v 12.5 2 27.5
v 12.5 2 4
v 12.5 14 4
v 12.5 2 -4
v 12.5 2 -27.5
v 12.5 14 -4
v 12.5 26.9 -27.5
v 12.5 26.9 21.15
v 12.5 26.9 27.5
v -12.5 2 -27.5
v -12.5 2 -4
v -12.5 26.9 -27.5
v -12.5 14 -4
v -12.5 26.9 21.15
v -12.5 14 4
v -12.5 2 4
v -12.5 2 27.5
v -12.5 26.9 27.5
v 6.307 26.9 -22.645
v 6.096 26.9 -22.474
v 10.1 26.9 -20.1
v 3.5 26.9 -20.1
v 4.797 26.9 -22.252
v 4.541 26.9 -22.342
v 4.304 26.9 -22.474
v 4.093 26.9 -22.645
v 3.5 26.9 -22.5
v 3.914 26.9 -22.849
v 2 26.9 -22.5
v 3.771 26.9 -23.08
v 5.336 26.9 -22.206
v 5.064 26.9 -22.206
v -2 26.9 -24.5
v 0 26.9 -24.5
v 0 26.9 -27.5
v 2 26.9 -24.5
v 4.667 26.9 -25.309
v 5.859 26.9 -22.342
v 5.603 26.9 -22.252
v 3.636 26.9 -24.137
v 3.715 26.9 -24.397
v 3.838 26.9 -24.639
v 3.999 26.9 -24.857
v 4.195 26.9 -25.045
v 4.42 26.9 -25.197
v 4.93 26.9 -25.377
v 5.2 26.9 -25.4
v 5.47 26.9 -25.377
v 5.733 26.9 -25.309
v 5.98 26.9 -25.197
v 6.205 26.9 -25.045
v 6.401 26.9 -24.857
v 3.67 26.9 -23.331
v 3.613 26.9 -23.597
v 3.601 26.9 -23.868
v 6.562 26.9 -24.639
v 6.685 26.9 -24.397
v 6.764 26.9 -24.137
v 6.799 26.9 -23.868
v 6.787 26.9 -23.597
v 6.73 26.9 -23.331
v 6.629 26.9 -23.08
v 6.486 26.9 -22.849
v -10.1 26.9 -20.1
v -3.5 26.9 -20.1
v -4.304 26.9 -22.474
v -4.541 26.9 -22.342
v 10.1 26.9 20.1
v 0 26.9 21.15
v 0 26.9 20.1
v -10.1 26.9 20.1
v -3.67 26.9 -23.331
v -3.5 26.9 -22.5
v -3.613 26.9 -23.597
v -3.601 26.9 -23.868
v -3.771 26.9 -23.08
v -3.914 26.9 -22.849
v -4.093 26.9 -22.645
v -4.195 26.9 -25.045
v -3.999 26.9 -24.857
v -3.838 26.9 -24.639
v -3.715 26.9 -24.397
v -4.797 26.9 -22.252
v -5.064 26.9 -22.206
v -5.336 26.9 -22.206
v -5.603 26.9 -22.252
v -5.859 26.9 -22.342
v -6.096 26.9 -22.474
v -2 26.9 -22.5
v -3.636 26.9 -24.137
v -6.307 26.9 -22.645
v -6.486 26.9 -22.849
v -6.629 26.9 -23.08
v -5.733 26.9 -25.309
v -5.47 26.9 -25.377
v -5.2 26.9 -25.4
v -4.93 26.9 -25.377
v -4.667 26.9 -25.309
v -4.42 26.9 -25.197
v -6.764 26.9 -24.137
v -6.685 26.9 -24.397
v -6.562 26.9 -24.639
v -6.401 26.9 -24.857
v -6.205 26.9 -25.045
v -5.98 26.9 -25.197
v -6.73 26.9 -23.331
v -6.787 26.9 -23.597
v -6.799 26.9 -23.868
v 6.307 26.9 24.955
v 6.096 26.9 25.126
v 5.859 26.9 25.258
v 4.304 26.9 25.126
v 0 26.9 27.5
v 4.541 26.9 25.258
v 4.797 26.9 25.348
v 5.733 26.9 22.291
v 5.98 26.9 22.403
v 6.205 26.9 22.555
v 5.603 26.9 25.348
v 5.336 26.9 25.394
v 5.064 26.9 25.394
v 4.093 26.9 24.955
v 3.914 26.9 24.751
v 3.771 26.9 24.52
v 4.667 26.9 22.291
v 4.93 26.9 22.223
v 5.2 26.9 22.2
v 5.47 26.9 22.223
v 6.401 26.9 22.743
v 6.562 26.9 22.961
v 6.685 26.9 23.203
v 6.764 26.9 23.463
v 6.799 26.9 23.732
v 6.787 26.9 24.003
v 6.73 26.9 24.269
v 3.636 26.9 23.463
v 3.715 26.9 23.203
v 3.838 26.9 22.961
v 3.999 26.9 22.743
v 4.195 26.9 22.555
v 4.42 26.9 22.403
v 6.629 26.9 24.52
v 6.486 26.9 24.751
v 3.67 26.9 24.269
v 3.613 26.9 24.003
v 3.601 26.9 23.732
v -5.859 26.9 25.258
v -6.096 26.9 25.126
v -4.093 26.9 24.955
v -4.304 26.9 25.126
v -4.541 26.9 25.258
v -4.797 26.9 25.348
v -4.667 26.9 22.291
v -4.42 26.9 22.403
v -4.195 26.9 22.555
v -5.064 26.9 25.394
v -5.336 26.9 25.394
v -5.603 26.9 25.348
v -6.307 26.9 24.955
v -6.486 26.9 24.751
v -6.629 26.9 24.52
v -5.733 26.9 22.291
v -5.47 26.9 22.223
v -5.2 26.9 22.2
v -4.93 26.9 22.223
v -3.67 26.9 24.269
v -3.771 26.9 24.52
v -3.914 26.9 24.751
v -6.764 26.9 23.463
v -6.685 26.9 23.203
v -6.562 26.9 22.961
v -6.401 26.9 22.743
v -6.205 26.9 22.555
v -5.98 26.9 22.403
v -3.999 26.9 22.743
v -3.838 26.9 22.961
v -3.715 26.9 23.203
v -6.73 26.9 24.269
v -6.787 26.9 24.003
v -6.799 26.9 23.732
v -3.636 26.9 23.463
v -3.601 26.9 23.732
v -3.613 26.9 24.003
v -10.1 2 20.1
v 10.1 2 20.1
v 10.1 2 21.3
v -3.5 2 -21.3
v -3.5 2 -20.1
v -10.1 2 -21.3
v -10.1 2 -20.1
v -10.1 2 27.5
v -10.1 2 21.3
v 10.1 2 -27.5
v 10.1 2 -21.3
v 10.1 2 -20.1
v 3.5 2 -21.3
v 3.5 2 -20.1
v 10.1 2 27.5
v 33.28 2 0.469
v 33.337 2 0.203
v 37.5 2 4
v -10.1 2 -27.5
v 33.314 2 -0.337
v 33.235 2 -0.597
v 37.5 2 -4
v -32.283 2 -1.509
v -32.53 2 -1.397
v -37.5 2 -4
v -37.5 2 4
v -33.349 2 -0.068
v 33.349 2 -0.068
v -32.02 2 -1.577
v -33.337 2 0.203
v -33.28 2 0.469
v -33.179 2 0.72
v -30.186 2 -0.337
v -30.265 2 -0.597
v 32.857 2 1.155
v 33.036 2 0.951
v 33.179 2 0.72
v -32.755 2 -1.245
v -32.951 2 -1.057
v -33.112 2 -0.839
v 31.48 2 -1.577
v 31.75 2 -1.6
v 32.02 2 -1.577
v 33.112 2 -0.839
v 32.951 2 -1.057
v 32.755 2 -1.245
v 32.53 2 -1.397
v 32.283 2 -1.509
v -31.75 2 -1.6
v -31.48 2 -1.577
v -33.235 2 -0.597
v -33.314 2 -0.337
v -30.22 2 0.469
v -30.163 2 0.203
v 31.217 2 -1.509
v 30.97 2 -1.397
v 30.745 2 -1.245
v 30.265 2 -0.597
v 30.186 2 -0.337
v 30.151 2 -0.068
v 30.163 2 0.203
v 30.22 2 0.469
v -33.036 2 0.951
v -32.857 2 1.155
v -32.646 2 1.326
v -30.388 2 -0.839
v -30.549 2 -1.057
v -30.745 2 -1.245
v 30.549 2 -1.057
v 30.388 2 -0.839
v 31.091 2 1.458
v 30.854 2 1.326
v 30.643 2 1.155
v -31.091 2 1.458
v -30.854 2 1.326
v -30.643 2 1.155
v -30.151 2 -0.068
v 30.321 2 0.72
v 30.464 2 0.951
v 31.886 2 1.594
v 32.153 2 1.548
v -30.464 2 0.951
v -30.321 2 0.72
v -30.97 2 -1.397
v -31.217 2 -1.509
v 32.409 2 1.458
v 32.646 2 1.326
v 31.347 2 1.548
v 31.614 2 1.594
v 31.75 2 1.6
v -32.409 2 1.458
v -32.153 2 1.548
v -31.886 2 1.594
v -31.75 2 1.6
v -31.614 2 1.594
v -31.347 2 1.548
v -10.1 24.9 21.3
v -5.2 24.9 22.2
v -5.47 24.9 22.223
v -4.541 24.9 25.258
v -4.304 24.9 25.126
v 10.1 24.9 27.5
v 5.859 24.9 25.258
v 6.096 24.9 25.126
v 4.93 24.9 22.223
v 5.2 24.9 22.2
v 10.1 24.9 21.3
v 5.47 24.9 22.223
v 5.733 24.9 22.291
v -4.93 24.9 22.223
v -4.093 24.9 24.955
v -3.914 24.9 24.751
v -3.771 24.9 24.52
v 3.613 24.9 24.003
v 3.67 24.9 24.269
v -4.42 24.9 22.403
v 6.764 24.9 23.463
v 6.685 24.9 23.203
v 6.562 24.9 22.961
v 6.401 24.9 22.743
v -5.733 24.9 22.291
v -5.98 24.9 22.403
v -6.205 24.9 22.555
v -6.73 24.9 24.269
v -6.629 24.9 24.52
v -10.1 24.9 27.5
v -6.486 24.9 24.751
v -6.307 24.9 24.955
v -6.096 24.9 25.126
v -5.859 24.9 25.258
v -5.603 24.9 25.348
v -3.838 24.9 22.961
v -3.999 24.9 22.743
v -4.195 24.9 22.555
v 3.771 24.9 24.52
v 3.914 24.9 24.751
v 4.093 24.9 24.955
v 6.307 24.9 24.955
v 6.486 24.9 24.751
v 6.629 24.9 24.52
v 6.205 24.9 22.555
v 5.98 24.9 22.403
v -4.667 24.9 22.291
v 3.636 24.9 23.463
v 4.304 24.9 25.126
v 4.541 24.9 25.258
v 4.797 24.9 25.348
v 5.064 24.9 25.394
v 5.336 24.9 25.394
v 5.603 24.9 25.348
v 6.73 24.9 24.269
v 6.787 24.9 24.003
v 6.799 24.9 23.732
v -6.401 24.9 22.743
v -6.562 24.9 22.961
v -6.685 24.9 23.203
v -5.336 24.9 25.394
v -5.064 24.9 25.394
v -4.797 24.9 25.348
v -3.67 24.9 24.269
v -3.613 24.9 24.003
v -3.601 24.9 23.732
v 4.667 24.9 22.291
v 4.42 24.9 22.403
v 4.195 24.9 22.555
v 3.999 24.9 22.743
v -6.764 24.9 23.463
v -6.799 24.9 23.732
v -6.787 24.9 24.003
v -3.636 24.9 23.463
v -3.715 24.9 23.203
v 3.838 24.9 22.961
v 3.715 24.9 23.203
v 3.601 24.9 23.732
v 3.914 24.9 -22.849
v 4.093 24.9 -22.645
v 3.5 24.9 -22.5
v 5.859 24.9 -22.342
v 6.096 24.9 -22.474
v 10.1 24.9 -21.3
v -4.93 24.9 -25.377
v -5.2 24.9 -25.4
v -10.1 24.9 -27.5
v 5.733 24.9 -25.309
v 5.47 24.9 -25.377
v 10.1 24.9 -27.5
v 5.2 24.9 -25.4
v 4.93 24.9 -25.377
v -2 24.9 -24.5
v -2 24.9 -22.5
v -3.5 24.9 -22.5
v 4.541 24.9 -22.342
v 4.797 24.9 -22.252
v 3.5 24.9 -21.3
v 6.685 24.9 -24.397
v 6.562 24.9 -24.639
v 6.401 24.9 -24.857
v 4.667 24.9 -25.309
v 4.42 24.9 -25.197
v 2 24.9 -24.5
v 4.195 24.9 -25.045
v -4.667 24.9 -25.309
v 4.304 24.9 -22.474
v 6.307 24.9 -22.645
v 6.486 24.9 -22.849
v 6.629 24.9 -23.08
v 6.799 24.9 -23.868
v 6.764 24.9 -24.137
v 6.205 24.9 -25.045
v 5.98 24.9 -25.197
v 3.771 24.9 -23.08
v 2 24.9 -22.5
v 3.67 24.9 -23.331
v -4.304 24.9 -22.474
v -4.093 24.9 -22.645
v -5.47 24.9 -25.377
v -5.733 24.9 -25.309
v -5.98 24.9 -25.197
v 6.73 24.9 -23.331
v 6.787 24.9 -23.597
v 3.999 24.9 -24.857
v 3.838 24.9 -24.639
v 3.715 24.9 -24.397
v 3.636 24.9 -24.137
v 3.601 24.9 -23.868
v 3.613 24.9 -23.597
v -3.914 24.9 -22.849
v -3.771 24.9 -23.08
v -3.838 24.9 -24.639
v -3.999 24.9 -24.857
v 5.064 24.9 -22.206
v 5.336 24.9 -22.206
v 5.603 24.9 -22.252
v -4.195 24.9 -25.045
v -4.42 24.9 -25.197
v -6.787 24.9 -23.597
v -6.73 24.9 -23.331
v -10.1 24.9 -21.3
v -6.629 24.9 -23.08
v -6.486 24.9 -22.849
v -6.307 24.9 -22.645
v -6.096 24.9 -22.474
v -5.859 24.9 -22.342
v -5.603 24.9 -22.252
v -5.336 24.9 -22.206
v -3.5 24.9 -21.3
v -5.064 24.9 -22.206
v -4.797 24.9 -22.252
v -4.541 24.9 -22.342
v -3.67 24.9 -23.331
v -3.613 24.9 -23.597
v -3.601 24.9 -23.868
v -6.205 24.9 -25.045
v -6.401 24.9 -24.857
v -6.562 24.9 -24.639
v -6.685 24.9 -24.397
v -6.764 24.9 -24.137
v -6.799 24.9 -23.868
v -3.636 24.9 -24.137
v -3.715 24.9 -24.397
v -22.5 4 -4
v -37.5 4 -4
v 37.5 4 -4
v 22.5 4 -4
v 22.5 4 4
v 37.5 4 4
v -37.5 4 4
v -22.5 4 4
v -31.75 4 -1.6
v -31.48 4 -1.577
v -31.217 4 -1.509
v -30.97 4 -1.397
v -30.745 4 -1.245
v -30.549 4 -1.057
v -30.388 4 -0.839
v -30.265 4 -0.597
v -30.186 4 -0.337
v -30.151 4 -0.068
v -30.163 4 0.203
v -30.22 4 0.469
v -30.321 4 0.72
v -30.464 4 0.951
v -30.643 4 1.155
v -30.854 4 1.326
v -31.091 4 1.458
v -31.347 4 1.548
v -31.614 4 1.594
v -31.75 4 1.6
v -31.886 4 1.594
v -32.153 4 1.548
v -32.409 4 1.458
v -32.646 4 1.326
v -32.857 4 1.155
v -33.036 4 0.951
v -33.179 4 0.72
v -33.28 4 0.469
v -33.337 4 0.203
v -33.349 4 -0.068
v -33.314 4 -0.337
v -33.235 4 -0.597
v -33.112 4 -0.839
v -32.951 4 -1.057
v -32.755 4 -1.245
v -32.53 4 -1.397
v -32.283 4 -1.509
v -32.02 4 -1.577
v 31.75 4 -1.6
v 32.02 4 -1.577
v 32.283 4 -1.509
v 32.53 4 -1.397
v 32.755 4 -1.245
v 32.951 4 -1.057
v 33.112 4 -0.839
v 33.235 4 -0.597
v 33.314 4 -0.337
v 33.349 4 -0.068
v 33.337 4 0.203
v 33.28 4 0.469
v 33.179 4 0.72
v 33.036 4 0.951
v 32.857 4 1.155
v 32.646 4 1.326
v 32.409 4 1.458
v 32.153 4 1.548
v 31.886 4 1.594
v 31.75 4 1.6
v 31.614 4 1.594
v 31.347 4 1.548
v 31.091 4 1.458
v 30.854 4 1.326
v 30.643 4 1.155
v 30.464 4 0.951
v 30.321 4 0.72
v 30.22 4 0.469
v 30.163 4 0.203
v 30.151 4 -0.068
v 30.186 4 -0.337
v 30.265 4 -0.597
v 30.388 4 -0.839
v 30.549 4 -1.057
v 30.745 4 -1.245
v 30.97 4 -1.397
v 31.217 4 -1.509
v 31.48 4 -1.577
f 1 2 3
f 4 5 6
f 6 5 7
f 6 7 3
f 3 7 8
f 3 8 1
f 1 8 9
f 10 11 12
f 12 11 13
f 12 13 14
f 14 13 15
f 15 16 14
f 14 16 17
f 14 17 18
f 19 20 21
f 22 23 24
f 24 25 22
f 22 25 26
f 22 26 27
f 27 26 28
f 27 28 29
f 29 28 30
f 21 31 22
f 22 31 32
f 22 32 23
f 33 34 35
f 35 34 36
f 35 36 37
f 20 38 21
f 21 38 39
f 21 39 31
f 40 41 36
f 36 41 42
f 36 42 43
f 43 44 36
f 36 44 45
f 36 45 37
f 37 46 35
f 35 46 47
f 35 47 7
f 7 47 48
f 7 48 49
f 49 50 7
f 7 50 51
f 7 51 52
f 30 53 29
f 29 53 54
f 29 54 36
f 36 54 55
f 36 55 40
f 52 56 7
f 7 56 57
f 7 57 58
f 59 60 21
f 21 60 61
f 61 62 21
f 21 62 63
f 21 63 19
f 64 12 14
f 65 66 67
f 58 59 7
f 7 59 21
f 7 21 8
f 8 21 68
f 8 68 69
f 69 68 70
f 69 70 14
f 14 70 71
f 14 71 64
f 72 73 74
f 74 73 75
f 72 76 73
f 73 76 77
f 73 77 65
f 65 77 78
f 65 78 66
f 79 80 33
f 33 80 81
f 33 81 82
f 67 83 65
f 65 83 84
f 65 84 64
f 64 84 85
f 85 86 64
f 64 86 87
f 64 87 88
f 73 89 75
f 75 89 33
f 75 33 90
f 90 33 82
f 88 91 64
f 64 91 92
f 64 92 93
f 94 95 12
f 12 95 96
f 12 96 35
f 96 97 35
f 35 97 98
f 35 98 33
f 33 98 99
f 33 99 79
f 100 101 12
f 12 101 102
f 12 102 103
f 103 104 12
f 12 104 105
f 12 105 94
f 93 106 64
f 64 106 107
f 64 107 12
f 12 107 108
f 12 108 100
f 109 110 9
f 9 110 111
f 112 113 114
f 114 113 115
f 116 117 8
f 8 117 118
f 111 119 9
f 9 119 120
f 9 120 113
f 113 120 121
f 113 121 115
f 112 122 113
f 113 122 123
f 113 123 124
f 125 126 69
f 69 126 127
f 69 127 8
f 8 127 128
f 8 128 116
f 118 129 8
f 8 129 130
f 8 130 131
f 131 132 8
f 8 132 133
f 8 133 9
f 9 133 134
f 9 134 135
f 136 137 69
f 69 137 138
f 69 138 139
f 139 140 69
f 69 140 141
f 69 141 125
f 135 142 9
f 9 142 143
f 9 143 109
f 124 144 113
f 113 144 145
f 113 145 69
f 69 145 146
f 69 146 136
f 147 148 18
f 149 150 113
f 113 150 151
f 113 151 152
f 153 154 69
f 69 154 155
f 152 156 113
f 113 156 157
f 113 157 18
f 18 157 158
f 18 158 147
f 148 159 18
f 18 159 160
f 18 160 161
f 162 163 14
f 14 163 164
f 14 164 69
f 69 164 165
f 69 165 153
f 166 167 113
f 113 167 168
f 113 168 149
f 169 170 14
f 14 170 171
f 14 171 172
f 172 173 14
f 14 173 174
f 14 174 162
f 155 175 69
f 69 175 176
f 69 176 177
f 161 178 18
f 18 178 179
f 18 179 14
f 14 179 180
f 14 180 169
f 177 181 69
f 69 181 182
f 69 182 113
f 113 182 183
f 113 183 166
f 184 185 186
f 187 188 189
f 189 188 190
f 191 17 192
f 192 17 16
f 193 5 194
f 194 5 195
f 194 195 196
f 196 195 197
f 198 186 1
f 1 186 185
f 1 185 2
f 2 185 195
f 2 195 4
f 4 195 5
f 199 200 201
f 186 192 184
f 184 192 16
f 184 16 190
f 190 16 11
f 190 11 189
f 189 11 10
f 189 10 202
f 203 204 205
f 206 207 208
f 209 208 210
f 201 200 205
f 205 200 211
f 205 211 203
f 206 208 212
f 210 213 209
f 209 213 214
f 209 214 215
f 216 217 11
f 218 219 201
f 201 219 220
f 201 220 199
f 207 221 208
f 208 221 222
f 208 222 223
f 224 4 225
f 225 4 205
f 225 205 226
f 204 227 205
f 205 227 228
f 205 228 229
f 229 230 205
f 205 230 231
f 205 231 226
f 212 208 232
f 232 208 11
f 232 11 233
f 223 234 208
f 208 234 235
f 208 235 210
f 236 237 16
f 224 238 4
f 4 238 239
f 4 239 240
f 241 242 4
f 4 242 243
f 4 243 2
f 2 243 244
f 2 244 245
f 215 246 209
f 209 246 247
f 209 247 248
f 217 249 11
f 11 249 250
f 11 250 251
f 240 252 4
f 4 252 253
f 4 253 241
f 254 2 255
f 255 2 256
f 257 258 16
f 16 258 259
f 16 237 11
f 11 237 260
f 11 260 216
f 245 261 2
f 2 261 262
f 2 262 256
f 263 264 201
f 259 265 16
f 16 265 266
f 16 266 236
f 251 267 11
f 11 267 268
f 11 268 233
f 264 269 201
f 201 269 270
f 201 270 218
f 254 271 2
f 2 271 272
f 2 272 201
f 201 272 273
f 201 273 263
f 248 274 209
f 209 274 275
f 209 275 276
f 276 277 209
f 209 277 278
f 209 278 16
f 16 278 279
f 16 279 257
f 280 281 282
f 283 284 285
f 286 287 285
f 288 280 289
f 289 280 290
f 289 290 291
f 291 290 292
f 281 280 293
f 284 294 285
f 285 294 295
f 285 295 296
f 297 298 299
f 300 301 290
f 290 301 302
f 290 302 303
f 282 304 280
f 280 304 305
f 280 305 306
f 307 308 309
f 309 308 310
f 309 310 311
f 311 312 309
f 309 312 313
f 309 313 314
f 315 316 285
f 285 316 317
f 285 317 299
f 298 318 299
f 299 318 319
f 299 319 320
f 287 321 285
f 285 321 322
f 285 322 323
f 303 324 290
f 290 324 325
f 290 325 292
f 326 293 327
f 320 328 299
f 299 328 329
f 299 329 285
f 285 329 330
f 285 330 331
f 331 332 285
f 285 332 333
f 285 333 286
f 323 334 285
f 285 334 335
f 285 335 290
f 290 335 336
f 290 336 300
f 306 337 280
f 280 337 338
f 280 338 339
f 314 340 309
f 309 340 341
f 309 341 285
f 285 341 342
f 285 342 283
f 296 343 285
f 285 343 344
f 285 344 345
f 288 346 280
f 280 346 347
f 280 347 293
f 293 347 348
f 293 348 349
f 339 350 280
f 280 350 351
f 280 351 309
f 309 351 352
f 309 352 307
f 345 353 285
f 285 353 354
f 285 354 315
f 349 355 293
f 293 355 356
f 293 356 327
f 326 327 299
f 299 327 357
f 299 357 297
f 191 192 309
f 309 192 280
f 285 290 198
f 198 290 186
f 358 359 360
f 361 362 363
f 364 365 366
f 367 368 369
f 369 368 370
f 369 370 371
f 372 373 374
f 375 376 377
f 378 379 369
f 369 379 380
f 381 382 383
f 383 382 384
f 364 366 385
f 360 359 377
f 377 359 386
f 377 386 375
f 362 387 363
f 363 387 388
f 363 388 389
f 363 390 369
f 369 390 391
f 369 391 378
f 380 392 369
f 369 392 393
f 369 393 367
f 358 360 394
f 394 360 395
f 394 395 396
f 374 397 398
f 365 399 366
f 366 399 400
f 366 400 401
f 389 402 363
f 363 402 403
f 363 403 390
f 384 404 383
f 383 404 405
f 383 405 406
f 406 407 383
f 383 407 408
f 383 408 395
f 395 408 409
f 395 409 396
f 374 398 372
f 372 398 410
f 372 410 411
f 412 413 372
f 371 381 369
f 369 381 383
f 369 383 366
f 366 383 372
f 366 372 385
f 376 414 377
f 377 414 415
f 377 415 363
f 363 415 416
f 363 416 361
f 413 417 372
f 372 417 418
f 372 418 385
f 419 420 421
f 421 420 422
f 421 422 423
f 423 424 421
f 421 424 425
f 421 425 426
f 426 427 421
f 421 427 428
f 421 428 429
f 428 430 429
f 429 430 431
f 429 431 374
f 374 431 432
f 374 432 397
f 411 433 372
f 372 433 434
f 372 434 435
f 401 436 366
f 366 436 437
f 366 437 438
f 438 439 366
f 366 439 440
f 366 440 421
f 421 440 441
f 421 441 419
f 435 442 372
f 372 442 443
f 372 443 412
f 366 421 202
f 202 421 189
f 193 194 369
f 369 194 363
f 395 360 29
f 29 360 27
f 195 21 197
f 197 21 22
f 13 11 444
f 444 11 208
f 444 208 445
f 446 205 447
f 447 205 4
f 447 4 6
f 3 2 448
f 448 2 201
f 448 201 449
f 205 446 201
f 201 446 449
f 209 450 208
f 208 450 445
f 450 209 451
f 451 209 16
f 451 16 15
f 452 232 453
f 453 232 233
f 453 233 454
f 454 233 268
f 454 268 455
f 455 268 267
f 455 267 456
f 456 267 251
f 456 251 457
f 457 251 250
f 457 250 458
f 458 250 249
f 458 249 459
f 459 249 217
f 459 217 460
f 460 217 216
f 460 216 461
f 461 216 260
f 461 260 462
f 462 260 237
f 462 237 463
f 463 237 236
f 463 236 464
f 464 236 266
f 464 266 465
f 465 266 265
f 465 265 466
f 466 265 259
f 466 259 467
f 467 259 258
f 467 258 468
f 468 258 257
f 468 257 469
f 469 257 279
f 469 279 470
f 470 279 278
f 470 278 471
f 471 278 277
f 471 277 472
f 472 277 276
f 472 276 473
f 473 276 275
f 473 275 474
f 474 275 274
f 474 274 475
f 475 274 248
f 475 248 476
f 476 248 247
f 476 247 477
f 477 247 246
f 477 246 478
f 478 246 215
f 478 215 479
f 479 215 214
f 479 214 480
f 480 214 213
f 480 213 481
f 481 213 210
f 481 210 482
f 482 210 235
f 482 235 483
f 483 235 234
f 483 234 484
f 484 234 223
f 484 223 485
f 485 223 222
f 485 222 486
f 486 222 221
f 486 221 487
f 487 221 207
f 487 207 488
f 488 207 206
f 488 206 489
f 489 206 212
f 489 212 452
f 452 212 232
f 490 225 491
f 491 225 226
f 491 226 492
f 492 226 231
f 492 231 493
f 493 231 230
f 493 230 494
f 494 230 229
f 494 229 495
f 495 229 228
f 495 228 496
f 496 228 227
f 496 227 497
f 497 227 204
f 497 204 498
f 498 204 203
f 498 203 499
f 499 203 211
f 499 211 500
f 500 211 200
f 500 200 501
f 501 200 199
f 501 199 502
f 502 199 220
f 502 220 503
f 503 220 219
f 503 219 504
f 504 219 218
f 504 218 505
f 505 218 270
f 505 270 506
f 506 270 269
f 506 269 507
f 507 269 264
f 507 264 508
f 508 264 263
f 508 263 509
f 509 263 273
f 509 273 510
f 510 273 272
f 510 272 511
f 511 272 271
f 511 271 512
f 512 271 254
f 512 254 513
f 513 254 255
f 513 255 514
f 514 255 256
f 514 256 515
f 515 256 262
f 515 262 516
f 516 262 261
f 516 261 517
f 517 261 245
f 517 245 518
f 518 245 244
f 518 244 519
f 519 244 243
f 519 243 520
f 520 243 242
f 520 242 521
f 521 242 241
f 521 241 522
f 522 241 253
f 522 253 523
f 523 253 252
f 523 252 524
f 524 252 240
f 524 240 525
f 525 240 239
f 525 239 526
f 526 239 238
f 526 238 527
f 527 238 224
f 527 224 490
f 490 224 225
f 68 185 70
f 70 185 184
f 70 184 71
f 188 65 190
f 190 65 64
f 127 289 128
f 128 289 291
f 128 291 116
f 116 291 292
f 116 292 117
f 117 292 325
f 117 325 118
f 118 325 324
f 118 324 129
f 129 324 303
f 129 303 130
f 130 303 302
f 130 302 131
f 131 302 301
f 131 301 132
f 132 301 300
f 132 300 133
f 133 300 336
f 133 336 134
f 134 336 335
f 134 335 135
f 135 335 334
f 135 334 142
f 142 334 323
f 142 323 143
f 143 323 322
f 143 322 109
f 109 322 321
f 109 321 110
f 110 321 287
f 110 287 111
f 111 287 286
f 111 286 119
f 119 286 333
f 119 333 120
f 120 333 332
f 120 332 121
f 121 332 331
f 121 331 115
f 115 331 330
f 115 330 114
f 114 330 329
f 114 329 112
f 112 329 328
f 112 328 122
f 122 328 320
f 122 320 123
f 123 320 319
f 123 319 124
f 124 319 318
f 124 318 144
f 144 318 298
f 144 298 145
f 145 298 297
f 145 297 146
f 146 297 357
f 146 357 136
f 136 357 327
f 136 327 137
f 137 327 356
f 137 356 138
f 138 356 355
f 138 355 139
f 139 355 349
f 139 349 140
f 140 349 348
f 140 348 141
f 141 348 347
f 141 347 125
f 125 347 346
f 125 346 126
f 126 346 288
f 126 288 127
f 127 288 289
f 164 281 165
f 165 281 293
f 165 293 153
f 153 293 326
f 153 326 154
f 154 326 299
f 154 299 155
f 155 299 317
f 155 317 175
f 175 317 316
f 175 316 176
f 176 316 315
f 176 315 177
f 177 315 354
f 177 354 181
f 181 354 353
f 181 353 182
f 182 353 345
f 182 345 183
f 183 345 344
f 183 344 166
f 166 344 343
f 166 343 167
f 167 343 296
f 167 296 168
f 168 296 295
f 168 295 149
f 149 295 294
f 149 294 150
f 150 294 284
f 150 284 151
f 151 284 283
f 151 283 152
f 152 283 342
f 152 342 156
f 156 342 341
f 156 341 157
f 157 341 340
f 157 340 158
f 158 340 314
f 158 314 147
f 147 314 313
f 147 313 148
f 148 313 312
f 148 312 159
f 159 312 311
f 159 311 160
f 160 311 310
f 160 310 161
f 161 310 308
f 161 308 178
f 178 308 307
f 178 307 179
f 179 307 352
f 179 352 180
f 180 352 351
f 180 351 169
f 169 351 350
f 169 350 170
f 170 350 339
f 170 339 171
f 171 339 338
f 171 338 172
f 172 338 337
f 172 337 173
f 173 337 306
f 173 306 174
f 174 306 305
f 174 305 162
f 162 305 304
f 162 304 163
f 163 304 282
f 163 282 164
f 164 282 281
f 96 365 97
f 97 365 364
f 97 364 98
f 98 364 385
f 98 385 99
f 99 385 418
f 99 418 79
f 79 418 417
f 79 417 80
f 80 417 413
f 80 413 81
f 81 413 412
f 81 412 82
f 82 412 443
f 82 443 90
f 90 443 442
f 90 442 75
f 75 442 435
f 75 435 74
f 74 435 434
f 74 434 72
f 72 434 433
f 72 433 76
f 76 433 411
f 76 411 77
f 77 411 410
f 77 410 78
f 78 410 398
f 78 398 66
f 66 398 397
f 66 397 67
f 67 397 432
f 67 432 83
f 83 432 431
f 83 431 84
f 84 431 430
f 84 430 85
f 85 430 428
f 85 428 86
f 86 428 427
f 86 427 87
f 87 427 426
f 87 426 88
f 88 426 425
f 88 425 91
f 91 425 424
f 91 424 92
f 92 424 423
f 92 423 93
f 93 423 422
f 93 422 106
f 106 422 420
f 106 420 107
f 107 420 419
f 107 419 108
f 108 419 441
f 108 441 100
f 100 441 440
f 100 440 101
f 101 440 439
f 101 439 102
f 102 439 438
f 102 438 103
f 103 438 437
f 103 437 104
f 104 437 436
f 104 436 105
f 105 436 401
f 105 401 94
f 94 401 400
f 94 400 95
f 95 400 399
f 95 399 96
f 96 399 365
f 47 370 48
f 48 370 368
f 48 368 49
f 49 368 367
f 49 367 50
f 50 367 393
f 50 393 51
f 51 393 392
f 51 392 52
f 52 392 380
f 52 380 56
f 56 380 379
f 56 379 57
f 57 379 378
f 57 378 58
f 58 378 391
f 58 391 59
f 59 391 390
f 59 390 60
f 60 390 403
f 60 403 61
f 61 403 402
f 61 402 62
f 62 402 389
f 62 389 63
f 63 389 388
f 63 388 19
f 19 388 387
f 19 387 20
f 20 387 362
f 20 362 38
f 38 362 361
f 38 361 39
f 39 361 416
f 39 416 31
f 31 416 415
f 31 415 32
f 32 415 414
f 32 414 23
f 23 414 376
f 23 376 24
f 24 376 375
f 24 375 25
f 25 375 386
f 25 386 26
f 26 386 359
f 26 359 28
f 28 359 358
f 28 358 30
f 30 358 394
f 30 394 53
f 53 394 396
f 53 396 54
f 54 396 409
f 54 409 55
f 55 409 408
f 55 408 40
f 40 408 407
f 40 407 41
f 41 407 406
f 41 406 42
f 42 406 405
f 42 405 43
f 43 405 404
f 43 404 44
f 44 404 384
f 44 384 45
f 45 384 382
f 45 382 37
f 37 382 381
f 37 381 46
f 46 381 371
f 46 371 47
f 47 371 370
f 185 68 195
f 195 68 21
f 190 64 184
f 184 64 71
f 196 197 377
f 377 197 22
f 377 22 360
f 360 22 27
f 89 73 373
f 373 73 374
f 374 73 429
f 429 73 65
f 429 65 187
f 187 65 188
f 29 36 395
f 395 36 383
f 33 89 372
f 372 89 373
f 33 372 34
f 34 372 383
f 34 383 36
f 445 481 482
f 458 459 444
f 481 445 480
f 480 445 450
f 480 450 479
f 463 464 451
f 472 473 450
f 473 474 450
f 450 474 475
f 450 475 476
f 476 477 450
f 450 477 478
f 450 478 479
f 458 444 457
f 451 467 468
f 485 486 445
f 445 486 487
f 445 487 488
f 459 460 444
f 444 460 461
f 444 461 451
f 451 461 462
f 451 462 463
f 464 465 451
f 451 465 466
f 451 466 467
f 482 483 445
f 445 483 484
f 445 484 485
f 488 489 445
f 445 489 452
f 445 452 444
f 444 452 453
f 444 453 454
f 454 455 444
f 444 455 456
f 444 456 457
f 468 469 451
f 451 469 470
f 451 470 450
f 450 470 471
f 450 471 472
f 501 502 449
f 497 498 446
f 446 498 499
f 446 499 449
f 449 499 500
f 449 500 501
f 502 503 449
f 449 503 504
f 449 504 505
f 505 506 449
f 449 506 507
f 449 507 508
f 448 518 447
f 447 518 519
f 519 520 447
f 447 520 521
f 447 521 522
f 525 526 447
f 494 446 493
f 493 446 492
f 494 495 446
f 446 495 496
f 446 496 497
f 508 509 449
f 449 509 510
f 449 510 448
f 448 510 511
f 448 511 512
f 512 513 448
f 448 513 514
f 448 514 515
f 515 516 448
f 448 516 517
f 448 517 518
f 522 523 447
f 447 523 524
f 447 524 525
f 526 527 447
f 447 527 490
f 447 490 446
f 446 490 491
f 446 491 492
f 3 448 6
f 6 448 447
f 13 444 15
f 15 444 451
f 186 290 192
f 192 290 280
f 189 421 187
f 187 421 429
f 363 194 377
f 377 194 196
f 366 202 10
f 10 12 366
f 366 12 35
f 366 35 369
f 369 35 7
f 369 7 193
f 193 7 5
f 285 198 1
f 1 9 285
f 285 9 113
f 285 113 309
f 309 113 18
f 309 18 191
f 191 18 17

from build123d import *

# Parameters (mm, degrees)
SKETCH2_W           = 75
SKETCH2_H           = 8
SKETCH2_R           = 1.6
BOSS_EXTRUDE1_DEPTH = 2
SKETCH3_W           = 25
SKETCH3_H           = 18.5
BOSS_EXTRUDE2_DEPTH = 2
SKETCH4_W           = 25
SKETCH4_H           = 2
BOSS_EXTRUDE3_DEPTH = 18.5
SKETCH5_W           = 10.2
SKETCH5_H           = 40.2
CUT_EXTRUDE1_DEPTH  = 18.5
SKETCH6_W           = 10.2
SKETCH6_H           = 40.2
BOSS_EXTRUDE4_DEPTH = 24.9
SKETCH8_W           = 25
SKETCH8_H           = 7
BOSS_EXTRUDE5_DEPTH = 2
SKETCH9_R           = 1.6
CUT_EXTRUDE2_DEPTH  = 2
SKETCH10_W          = 20.2
SKETCH10_H          = 40.2
CUT_EXTRUDE3_DEPTH  = 77
SKETCH11_W          = 7
SKETCH11_H          = 2.4
CUT_EXTRUDE4_DEPTH  = 77
SKETCH12_W          = 2.4
SKETCH12_H          = 7
BOSS_EXTRUDE6_DEPTH = 24.9
SKETCH13_W          = 4
SKETCH13_H          = 4
CUT_EXTRUDE5_DEPTH  = 77
SKETCH14_W          = 25
SKETCH14_H          = 8
SKETCH14_R          = 1.6
BOSS_EXTRUDE7_DEPTH = 2
CUT_EXTRUDE6_DEPTH  = 2
CHAMFER1_SIZE       = 10
CUT_EXTRUDE7_DEPTH  = 1.2
SKETCH17_W          = 20.2
SKETCH17_H          = 22.9
CUT_EXTRUDE8_DEPTH  = 1.2
CUT_EXTRUDE9_DEPTH  = 2
CUT_EXTRUDE10_DEPTH = 2


with BuildPart() as part:
    # Sketch2 → Boss-Extrude1 (new body)
    with BuildSketch(Plane(origin=(0, 0, 0), x_dir=(1, 0, 0), z_dir=(0, 1, 0))):
        Rectangle(SKETCH2_W, SKETCH2_H)
        with Locations((-31.75, 0)):
            Circle(SKETCH2_R, mode=Mode.SUBTRACT)
        with Locations((31.75, 0)):
            Circle(SKETCH2_R, mode=Mode.SUBTRACT)
    extrude(amount=BOSS_EXTRUDE1_DEPTH)

    # Sketch3 → Boss-Extrude2 (add)
    with BuildSketch(Plane(origin=(0, 2, 0), x_dir=(1, 0, 0), z_dir=(0, 1, 0))):
        with Locations((0, -13.25)):
            Rectangle(SKETCH3_W, SKETCH3_H)
    extrude(amount=-BOSS_EXTRUDE2_DEPTH)

    # Sketch4 → Boss-Extrude3 (add)
    with BuildSketch(Plane(origin=(0, 0, -4), x_dir=(-1, 0, 0), z_dir=(0, 0, -1))):
        with Locations((0, 1)):
            Rectangle(SKETCH4_W, SKETCH4_H)
    extrude(amount=BOSS_EXTRUDE3_DEPTH)

    # Sketch5 → Cut-Extrude1 (cut)
    with BuildSketch(Plane(origin=(0, 2, 0), x_dir=(1, 0, 0), z_dir=(0, 1, 0))):
        Rectangle(SKETCH5_W, SKETCH5_H)
    extrude(amount=-CUT_EXTRUDE1_DEPTH, mode=Mode.SUBTRACT)

    # Sketch6 → Boss-Extrude4 (add)
    with BuildSketch(Plane(origin=(0, 2, 0), x_dir=(1, 0, 0), z_dir=(0, 1, 0))):
        Polygon((-12.5, 4), (-12.5, -4), (-12.5, -22.5), (12.5, -22.5), (12.5, -4), (12.5, 4), (12.5, 22.5), (-12.5, 22.5), align=None)
        Rectangle(SKETCH6_W, SKETCH6_H, mode=Mode.SUBTRACT)
    extrude(amount=BOSS_EXTRUDE4_DEPTH)

    # Sketch8 → Boss-Extrude5 (add)
    with BuildSketch(Plane(origin=(0, 26.9, 0), x_dir=(1, 0, 0), z_dir=(0, 1, 0))):
        with Locations((0, 26)):
            Rectangle(SKETCH8_W, SKETCH8_H)
        with Locations((0, -26)):
            Rectangle(SKETCH8_W, SKETCH8_H)
    extrude(amount=-BOSS_EXTRUDE5_DEPTH)

    # Sketch9 → Cut-Extrude2 (cut)
    with BuildSketch(Plane.XZ.offset(-24.9)):
        with Locations((5.2, 23.8)):
            Circle(SKETCH9_R)
        with Locations((-5.2, 23.8)):
            Circle(SKETCH9_R)
        with Locations((-5.2, -23.8)):
            Circle(SKETCH9_R)
        with Locations((5.2, -23.8)):
            Circle(SKETCH9_R)
    extrude(amount=-CUT_EXTRUDE2_DEPTH, mode=Mode.SUBTRACT)

    # Sketch10 → Cut-Extrude3 (cut)
    with BuildSketch(Plane.XZ):
        Rectangle(SKETCH10_W, SKETCH10_H)
    extrude(amount=-CUT_EXTRUDE3_DEPTH, mode=Mode.SUBTRACT)

    # Sketch11 → Cut-Extrude4 (cut)
    with BuildSketch(Plane.XZ):
        with Locations((0, -21.3)):
            Rectangle(SKETCH11_W, SKETCH11_H)
    extrude(amount=-CUT_EXTRUDE4_DEPTH, mode=Mode.SUBTRACT)

    # Sketch12 → Boss-Extrude6 (add)
    with BuildSketch(Plane.XZ):
        with Locations((-11.3, 26)):
            Rectangle(SKETCH12_W, SKETCH12_H)
        with Locations((-11.3, -26)):
            Rectangle(SKETCH12_W, SKETCH12_H)
        with Locations((11.3, 26)):
            Rectangle(SKETCH12_W, SKETCH12_H)
        with Locations((11.3, -26)):
            Rectangle(SKETCH12_W, SKETCH12_H)
    extrude(amount=-BOSS_EXTRUDE6_DEPTH)

    # Sketch13 → Cut-Extrude5 (cut)
    with BuildSketch(Plane(origin=(0, 26.9, 0), x_dir=(1, 0, 0), z_dir=(0, 1, 0))):
        with Locations((0, 22.5)):
            Rectangle(SKETCH13_W, SKETCH13_H)
    extrude(amount=-CUT_EXTRUDE5_DEPTH, mode=Mode.SUBTRACT)

    # Sketch14 → Boss-Extrude7 (add)
    with BuildSketch(Plane(origin=(0, 2, 0), x_dir=(1, 0, 0), z_dir=(0, 1, 0))):
        with Locations((-25, 0)):
            Rectangle(SKETCH14_W, SKETCH14_H)
        with Locations((-31.75, 0)):
            Circle(SKETCH14_R, mode=Mode.SUBTRACT)
        with Locations((25, 0)):
            Rectangle(SKETCH14_W, SKETCH14_H)
        with Locations((31.75, 0)):
            Circle(SKETCH14_R, mode=Mode.SUBTRACT)
    extrude(amount=BOSS_EXTRUDE7_DEPTH)

    # Sketch15 → Cut-Extrude6 (cut)
    with BuildSketch(Plane.XZ):
        Polygon((10.1, -20.1), (3.5, -20.1), (3.5, -22.5), (10.1, -22.5), (10.1, -29.5), (12.5, -29.5), (12.5, -4), (37.5, -4), (37.5, 4), (12.5, 4), (12.5, 29.5), (10.1, 29.5), (10.1, 22.5), (-10.1, 22.5), (-10.1, 29.5), (-12.5, 29.5), (-12.5, 4), (-37.5, 4), (-37.5, -4), (-12.5, -4), (-12.5, -29.5), (-10.1, -29.5), (-10.1, -22.5), (-3.5, -22.5), (-3.5, -20.1), (-10.1, -20.1), (-10.1, 20.1), (10.1, 20.1), align=None)
    extrude(amount=-CUT_EXTRUDE6_DEPTH, mode=Mode.SUBTRACT)

    # Chamfer1
    chamfer1_edges = [part.edges().sort_by_distance(p)[0] for p in [
        (-12.5, 4, 0),
        (12.5, 4, 0),
    ]]
    chamfer(chamfer1_edges, length=CHAMFER1_SIZE)

    # Sketch16 → Cut-Extrude7 (cut)
    with BuildSketch(Plane.XY.offset(22.5)):
        Polygon((-10.1, 2), (10.1, 2), (10.1, 24.9), (6.132737905, 24.9), (4.267262095, 24.9), (-4.267262095, 24.9), (-6.132737905, 24.9), (-10.1, 24.9), align=None)
    extrude(amount=-CUT_EXTRUDE7_DEPTH, mode=Mode.SUBTRACT)

    # Sketch17 → Cut-Extrude8 (cut)
    with BuildSketch(Plane(origin=(0, 0, -22.5), x_dir=(-1, 0, 0), z_dir=(0, 0, -1))):
        with Locations((0, 13.45)):
            Rectangle(SKETCH17_W, SKETCH17_H)
    extrude(amount=-CUT_EXTRUDE8_DEPTH, mode=Mode.SUBTRACT)

    # Sketch18 → Cut-Extrude9 (cut)
    with BuildSketch(Plane(origin=(0, 0, -29.5), x_dir=(-1, 0, 0), z_dir=(0, 0, -1))):
        Polygon((10.1, 2), (12.5, 2), (12.5, 26.9), (-12.5, 26.9), (-12.5, 2), (-10.1, 2), (-10.1, 24.9), (10.1, 24.9), align=None)
    extrude(amount=-CUT_EXTRUDE9_DEPTH, mode=Mode.SUBTRACT)

    # Sketch19 → Cut-Extrude10 (cut)
    with BuildSketch(Plane.XY.offset(29.5)):
        Polygon((10.1, 2), (12.5, 2), (12.5, 26.9), (-12.5, 26.9), (-12.5, 2), (-10.1, 2), (-10.1, 24.9), (10.1, 24.9), align=None)
    extrude(amount=-CUT_EXTRUDE10_DEPTH, mode=Mode.SUBTRACT)


solid = part.part
